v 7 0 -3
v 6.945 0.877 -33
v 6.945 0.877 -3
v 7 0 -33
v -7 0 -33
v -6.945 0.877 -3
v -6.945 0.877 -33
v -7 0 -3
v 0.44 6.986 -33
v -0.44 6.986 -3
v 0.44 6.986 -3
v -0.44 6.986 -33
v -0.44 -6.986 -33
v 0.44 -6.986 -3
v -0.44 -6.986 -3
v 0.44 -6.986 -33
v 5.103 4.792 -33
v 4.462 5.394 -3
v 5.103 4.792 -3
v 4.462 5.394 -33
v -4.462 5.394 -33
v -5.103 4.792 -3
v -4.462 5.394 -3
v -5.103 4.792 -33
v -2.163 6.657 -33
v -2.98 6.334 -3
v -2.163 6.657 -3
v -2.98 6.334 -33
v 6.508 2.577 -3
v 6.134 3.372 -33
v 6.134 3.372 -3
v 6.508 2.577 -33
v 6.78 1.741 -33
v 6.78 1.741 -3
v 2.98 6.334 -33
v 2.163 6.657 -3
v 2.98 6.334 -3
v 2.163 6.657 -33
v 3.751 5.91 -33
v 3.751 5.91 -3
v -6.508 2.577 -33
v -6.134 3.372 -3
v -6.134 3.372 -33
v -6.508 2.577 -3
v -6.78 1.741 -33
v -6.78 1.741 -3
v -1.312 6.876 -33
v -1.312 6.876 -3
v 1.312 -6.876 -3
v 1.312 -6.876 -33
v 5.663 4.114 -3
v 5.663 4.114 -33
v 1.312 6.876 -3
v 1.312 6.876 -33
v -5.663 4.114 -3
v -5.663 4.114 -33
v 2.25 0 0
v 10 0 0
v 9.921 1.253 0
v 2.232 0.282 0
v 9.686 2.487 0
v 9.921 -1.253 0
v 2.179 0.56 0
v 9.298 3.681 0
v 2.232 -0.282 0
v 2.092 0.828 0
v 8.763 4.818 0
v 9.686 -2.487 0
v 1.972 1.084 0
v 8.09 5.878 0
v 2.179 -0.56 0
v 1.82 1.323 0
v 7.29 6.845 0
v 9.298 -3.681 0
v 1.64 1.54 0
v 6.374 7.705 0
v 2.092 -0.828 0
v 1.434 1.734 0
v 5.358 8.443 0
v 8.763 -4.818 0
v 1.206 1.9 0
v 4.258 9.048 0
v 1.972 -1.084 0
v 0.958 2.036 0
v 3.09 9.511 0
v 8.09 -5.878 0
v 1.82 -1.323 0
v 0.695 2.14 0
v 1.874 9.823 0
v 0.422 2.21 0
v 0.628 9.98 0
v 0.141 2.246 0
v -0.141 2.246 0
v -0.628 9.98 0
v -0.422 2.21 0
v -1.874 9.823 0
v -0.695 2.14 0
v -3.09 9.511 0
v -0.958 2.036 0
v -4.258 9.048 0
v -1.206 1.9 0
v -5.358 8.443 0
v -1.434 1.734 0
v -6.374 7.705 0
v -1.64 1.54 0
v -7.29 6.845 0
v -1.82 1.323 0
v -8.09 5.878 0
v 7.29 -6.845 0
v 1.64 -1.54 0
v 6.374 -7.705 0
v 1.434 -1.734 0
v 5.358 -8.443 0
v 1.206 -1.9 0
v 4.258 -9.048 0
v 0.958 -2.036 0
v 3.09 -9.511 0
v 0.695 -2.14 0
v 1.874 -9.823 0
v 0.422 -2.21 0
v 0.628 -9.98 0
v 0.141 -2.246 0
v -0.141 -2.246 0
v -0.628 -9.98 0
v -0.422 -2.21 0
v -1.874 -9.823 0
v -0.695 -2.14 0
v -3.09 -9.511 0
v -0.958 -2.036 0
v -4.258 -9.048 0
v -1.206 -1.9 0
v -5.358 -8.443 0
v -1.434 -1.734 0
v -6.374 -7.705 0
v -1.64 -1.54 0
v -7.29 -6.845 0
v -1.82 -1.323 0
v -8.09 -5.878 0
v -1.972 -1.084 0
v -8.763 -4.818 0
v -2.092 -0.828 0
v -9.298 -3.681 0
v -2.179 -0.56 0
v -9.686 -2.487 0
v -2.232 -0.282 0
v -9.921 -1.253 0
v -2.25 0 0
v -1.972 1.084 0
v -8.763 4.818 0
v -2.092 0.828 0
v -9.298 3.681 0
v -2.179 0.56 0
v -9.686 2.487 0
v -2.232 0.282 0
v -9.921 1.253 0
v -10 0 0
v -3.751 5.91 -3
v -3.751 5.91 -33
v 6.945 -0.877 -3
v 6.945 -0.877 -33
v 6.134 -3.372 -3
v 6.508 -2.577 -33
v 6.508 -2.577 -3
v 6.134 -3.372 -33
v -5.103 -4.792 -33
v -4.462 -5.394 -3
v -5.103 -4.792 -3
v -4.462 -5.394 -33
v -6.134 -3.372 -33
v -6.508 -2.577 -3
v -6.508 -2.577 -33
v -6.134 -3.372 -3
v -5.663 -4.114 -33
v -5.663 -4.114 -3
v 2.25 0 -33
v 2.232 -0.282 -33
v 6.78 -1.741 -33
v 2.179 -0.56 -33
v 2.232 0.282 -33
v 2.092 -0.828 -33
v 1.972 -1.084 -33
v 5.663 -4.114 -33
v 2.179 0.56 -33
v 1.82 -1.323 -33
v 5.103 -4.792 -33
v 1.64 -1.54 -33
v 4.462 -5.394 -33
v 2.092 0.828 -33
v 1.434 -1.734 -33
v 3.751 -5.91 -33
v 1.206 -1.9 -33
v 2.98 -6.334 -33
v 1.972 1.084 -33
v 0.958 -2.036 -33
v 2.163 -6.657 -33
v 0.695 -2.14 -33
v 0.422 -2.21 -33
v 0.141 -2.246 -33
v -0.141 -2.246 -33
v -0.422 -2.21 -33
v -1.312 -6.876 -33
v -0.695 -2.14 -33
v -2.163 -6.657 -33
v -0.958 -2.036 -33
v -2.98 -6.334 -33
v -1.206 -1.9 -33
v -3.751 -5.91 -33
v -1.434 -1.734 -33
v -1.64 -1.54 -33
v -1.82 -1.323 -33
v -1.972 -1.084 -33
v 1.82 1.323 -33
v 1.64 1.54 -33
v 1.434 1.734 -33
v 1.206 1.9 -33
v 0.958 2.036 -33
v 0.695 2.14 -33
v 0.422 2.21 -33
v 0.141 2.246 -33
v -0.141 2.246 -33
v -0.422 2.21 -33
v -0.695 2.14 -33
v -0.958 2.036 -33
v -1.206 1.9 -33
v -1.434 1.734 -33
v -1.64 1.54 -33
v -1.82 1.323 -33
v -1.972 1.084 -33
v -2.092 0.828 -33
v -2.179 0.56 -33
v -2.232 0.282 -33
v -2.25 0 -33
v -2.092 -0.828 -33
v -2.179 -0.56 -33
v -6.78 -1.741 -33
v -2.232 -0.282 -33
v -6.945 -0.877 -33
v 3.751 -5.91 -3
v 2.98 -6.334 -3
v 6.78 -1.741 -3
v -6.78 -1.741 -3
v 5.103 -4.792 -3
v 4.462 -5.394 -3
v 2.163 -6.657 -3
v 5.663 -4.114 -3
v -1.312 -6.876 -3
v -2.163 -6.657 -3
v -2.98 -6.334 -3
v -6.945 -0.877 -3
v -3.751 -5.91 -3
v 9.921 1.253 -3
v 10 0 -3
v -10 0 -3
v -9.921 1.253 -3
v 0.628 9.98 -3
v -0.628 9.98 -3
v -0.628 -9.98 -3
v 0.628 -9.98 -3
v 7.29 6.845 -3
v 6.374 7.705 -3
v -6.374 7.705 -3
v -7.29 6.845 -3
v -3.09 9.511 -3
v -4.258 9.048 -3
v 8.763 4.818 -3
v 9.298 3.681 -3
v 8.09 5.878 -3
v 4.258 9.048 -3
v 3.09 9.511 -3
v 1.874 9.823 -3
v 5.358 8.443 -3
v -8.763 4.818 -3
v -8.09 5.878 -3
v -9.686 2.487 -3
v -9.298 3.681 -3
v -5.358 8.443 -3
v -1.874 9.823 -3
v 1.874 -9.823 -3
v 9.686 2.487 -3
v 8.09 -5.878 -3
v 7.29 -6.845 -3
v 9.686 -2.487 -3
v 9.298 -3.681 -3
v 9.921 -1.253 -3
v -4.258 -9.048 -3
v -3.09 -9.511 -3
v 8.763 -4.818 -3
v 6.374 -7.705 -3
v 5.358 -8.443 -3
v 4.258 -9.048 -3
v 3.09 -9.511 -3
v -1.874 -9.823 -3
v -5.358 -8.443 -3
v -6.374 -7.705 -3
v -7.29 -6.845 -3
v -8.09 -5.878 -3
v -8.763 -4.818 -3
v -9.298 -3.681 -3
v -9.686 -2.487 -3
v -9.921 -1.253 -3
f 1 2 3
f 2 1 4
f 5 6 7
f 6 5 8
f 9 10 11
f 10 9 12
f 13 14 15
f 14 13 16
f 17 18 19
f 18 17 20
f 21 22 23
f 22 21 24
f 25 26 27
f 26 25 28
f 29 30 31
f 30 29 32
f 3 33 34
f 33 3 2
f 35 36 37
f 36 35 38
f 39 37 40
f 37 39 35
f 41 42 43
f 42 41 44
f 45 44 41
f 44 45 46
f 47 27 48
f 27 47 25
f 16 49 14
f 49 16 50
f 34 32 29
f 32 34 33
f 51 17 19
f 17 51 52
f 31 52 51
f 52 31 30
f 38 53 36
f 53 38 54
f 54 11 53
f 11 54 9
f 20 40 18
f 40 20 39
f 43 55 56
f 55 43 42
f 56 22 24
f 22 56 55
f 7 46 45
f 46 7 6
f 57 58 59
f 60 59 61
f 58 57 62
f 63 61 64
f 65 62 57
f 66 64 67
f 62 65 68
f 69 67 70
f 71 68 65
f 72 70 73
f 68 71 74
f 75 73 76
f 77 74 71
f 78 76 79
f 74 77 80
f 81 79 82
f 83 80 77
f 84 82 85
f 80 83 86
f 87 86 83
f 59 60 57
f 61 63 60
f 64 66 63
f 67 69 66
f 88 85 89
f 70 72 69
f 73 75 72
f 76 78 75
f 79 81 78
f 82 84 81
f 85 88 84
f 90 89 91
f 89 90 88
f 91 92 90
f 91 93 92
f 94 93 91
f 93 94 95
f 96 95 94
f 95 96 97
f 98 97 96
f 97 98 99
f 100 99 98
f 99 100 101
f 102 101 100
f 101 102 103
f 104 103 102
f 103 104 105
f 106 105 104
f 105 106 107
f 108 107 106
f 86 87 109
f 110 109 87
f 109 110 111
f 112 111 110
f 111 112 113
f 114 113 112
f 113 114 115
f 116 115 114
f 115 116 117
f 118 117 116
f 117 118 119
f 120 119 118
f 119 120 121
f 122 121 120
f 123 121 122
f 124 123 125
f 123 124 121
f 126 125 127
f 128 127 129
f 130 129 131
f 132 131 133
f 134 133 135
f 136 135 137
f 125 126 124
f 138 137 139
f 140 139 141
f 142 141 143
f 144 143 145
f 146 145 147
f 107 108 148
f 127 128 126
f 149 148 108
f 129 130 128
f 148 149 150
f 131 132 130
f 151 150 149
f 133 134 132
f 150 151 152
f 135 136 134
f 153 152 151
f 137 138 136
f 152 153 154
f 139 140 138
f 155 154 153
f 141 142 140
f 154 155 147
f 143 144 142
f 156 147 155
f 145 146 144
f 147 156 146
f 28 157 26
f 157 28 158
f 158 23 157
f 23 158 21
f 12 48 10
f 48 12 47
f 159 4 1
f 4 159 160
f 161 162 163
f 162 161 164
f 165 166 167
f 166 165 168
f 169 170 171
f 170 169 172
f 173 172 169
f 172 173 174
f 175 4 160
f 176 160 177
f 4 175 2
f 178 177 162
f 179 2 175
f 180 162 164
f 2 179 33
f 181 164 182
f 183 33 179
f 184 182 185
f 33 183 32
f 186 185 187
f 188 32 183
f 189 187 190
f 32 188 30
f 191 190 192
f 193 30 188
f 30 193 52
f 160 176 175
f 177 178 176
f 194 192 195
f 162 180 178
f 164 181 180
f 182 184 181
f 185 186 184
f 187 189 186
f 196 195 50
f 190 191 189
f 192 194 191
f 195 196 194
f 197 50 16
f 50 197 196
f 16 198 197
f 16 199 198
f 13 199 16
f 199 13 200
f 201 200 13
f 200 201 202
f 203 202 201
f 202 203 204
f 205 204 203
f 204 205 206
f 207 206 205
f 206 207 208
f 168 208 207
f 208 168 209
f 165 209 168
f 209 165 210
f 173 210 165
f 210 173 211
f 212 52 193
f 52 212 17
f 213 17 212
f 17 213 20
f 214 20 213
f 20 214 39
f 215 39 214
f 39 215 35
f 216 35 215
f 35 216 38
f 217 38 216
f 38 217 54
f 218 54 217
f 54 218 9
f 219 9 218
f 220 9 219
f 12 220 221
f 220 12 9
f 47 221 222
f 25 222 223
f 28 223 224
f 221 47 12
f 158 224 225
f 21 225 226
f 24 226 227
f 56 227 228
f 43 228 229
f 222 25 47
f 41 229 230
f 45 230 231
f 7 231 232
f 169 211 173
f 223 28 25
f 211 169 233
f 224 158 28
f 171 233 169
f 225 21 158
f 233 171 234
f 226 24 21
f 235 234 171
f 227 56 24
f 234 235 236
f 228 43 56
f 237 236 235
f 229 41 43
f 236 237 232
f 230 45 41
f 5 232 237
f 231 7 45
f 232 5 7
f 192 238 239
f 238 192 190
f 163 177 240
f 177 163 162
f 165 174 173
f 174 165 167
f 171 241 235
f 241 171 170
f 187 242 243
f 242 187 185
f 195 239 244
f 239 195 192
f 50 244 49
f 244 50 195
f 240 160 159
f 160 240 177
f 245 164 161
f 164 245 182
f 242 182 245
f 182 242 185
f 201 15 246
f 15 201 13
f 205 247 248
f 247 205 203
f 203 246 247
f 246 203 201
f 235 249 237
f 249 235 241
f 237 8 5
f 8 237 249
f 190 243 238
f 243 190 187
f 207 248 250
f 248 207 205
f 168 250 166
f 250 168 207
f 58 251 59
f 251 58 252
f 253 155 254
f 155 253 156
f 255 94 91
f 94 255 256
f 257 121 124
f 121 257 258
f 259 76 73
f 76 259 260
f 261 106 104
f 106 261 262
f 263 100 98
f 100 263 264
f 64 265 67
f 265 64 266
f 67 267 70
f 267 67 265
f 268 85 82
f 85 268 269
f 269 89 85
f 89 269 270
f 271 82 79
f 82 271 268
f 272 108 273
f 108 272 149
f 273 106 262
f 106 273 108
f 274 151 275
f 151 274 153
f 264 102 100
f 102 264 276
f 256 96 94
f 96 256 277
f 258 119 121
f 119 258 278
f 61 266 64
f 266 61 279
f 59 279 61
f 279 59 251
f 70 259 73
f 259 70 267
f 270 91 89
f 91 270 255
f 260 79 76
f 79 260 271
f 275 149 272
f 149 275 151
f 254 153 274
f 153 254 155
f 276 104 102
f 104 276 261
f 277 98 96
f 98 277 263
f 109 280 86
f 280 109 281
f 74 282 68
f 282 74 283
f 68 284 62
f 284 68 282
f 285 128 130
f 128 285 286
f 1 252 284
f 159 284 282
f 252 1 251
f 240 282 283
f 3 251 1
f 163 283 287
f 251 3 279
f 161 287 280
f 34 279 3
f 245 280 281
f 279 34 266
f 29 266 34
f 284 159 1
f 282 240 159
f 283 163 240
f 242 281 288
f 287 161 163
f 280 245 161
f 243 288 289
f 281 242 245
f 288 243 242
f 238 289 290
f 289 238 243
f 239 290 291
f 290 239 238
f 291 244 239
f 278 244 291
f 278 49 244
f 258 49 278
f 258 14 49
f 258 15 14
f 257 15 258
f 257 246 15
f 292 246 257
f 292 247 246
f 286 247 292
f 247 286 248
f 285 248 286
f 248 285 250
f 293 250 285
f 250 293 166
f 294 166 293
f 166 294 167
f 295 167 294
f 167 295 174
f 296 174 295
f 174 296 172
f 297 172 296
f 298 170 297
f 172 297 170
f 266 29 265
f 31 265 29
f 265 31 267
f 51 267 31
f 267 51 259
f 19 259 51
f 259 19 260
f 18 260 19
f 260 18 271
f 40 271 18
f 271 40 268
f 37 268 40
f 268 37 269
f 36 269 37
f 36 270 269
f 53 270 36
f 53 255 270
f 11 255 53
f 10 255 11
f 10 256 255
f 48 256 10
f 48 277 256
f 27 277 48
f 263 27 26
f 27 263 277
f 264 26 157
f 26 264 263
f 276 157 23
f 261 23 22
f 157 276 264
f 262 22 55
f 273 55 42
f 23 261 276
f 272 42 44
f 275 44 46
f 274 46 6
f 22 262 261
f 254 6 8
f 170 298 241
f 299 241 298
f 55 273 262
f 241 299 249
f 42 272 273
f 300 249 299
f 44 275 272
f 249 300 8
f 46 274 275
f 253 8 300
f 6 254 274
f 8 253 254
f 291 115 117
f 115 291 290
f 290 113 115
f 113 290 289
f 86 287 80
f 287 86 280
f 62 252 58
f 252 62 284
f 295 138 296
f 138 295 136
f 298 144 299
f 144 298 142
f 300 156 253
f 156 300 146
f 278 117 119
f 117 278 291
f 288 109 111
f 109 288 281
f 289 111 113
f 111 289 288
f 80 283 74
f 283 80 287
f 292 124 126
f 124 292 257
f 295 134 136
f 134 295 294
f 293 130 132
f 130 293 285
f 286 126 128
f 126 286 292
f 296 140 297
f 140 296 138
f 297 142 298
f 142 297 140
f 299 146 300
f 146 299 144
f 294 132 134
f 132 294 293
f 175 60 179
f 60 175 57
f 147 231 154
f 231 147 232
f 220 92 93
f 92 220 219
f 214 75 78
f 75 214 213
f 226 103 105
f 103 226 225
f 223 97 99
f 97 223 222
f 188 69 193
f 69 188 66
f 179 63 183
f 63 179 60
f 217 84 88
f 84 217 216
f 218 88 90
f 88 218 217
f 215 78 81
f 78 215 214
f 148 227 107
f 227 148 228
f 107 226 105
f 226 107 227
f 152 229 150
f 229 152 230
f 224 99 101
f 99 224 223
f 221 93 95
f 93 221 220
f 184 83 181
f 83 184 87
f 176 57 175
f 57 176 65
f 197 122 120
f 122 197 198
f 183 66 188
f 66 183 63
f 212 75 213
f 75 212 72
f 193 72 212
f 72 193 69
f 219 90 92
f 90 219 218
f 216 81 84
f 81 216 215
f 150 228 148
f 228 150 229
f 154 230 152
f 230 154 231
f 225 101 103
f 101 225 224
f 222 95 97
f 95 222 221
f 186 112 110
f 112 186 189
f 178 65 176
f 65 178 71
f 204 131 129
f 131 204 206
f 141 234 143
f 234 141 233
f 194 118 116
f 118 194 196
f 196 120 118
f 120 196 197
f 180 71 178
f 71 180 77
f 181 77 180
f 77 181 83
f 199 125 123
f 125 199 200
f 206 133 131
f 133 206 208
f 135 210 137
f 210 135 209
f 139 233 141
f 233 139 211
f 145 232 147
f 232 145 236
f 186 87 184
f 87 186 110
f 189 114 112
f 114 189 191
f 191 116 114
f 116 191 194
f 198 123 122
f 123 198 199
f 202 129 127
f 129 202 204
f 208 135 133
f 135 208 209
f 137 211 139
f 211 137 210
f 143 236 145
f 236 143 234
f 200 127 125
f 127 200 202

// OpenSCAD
$fn = 50;


difference() {
	union() {
		translate(v = [0, 0, -33.0000000000]) {
			cylinder(h = 33, r = 7.0000000000);
		}
		translate(v = [0, 0, -3.0000000000]) {
			cylinder(h = 3, r = 10.0000000000);
		}
	}
	union() {
		#translate(v = [0, 0, -33]) {
			cylinder(h = 33, r = 2.2500000000);
		}
	}
}
